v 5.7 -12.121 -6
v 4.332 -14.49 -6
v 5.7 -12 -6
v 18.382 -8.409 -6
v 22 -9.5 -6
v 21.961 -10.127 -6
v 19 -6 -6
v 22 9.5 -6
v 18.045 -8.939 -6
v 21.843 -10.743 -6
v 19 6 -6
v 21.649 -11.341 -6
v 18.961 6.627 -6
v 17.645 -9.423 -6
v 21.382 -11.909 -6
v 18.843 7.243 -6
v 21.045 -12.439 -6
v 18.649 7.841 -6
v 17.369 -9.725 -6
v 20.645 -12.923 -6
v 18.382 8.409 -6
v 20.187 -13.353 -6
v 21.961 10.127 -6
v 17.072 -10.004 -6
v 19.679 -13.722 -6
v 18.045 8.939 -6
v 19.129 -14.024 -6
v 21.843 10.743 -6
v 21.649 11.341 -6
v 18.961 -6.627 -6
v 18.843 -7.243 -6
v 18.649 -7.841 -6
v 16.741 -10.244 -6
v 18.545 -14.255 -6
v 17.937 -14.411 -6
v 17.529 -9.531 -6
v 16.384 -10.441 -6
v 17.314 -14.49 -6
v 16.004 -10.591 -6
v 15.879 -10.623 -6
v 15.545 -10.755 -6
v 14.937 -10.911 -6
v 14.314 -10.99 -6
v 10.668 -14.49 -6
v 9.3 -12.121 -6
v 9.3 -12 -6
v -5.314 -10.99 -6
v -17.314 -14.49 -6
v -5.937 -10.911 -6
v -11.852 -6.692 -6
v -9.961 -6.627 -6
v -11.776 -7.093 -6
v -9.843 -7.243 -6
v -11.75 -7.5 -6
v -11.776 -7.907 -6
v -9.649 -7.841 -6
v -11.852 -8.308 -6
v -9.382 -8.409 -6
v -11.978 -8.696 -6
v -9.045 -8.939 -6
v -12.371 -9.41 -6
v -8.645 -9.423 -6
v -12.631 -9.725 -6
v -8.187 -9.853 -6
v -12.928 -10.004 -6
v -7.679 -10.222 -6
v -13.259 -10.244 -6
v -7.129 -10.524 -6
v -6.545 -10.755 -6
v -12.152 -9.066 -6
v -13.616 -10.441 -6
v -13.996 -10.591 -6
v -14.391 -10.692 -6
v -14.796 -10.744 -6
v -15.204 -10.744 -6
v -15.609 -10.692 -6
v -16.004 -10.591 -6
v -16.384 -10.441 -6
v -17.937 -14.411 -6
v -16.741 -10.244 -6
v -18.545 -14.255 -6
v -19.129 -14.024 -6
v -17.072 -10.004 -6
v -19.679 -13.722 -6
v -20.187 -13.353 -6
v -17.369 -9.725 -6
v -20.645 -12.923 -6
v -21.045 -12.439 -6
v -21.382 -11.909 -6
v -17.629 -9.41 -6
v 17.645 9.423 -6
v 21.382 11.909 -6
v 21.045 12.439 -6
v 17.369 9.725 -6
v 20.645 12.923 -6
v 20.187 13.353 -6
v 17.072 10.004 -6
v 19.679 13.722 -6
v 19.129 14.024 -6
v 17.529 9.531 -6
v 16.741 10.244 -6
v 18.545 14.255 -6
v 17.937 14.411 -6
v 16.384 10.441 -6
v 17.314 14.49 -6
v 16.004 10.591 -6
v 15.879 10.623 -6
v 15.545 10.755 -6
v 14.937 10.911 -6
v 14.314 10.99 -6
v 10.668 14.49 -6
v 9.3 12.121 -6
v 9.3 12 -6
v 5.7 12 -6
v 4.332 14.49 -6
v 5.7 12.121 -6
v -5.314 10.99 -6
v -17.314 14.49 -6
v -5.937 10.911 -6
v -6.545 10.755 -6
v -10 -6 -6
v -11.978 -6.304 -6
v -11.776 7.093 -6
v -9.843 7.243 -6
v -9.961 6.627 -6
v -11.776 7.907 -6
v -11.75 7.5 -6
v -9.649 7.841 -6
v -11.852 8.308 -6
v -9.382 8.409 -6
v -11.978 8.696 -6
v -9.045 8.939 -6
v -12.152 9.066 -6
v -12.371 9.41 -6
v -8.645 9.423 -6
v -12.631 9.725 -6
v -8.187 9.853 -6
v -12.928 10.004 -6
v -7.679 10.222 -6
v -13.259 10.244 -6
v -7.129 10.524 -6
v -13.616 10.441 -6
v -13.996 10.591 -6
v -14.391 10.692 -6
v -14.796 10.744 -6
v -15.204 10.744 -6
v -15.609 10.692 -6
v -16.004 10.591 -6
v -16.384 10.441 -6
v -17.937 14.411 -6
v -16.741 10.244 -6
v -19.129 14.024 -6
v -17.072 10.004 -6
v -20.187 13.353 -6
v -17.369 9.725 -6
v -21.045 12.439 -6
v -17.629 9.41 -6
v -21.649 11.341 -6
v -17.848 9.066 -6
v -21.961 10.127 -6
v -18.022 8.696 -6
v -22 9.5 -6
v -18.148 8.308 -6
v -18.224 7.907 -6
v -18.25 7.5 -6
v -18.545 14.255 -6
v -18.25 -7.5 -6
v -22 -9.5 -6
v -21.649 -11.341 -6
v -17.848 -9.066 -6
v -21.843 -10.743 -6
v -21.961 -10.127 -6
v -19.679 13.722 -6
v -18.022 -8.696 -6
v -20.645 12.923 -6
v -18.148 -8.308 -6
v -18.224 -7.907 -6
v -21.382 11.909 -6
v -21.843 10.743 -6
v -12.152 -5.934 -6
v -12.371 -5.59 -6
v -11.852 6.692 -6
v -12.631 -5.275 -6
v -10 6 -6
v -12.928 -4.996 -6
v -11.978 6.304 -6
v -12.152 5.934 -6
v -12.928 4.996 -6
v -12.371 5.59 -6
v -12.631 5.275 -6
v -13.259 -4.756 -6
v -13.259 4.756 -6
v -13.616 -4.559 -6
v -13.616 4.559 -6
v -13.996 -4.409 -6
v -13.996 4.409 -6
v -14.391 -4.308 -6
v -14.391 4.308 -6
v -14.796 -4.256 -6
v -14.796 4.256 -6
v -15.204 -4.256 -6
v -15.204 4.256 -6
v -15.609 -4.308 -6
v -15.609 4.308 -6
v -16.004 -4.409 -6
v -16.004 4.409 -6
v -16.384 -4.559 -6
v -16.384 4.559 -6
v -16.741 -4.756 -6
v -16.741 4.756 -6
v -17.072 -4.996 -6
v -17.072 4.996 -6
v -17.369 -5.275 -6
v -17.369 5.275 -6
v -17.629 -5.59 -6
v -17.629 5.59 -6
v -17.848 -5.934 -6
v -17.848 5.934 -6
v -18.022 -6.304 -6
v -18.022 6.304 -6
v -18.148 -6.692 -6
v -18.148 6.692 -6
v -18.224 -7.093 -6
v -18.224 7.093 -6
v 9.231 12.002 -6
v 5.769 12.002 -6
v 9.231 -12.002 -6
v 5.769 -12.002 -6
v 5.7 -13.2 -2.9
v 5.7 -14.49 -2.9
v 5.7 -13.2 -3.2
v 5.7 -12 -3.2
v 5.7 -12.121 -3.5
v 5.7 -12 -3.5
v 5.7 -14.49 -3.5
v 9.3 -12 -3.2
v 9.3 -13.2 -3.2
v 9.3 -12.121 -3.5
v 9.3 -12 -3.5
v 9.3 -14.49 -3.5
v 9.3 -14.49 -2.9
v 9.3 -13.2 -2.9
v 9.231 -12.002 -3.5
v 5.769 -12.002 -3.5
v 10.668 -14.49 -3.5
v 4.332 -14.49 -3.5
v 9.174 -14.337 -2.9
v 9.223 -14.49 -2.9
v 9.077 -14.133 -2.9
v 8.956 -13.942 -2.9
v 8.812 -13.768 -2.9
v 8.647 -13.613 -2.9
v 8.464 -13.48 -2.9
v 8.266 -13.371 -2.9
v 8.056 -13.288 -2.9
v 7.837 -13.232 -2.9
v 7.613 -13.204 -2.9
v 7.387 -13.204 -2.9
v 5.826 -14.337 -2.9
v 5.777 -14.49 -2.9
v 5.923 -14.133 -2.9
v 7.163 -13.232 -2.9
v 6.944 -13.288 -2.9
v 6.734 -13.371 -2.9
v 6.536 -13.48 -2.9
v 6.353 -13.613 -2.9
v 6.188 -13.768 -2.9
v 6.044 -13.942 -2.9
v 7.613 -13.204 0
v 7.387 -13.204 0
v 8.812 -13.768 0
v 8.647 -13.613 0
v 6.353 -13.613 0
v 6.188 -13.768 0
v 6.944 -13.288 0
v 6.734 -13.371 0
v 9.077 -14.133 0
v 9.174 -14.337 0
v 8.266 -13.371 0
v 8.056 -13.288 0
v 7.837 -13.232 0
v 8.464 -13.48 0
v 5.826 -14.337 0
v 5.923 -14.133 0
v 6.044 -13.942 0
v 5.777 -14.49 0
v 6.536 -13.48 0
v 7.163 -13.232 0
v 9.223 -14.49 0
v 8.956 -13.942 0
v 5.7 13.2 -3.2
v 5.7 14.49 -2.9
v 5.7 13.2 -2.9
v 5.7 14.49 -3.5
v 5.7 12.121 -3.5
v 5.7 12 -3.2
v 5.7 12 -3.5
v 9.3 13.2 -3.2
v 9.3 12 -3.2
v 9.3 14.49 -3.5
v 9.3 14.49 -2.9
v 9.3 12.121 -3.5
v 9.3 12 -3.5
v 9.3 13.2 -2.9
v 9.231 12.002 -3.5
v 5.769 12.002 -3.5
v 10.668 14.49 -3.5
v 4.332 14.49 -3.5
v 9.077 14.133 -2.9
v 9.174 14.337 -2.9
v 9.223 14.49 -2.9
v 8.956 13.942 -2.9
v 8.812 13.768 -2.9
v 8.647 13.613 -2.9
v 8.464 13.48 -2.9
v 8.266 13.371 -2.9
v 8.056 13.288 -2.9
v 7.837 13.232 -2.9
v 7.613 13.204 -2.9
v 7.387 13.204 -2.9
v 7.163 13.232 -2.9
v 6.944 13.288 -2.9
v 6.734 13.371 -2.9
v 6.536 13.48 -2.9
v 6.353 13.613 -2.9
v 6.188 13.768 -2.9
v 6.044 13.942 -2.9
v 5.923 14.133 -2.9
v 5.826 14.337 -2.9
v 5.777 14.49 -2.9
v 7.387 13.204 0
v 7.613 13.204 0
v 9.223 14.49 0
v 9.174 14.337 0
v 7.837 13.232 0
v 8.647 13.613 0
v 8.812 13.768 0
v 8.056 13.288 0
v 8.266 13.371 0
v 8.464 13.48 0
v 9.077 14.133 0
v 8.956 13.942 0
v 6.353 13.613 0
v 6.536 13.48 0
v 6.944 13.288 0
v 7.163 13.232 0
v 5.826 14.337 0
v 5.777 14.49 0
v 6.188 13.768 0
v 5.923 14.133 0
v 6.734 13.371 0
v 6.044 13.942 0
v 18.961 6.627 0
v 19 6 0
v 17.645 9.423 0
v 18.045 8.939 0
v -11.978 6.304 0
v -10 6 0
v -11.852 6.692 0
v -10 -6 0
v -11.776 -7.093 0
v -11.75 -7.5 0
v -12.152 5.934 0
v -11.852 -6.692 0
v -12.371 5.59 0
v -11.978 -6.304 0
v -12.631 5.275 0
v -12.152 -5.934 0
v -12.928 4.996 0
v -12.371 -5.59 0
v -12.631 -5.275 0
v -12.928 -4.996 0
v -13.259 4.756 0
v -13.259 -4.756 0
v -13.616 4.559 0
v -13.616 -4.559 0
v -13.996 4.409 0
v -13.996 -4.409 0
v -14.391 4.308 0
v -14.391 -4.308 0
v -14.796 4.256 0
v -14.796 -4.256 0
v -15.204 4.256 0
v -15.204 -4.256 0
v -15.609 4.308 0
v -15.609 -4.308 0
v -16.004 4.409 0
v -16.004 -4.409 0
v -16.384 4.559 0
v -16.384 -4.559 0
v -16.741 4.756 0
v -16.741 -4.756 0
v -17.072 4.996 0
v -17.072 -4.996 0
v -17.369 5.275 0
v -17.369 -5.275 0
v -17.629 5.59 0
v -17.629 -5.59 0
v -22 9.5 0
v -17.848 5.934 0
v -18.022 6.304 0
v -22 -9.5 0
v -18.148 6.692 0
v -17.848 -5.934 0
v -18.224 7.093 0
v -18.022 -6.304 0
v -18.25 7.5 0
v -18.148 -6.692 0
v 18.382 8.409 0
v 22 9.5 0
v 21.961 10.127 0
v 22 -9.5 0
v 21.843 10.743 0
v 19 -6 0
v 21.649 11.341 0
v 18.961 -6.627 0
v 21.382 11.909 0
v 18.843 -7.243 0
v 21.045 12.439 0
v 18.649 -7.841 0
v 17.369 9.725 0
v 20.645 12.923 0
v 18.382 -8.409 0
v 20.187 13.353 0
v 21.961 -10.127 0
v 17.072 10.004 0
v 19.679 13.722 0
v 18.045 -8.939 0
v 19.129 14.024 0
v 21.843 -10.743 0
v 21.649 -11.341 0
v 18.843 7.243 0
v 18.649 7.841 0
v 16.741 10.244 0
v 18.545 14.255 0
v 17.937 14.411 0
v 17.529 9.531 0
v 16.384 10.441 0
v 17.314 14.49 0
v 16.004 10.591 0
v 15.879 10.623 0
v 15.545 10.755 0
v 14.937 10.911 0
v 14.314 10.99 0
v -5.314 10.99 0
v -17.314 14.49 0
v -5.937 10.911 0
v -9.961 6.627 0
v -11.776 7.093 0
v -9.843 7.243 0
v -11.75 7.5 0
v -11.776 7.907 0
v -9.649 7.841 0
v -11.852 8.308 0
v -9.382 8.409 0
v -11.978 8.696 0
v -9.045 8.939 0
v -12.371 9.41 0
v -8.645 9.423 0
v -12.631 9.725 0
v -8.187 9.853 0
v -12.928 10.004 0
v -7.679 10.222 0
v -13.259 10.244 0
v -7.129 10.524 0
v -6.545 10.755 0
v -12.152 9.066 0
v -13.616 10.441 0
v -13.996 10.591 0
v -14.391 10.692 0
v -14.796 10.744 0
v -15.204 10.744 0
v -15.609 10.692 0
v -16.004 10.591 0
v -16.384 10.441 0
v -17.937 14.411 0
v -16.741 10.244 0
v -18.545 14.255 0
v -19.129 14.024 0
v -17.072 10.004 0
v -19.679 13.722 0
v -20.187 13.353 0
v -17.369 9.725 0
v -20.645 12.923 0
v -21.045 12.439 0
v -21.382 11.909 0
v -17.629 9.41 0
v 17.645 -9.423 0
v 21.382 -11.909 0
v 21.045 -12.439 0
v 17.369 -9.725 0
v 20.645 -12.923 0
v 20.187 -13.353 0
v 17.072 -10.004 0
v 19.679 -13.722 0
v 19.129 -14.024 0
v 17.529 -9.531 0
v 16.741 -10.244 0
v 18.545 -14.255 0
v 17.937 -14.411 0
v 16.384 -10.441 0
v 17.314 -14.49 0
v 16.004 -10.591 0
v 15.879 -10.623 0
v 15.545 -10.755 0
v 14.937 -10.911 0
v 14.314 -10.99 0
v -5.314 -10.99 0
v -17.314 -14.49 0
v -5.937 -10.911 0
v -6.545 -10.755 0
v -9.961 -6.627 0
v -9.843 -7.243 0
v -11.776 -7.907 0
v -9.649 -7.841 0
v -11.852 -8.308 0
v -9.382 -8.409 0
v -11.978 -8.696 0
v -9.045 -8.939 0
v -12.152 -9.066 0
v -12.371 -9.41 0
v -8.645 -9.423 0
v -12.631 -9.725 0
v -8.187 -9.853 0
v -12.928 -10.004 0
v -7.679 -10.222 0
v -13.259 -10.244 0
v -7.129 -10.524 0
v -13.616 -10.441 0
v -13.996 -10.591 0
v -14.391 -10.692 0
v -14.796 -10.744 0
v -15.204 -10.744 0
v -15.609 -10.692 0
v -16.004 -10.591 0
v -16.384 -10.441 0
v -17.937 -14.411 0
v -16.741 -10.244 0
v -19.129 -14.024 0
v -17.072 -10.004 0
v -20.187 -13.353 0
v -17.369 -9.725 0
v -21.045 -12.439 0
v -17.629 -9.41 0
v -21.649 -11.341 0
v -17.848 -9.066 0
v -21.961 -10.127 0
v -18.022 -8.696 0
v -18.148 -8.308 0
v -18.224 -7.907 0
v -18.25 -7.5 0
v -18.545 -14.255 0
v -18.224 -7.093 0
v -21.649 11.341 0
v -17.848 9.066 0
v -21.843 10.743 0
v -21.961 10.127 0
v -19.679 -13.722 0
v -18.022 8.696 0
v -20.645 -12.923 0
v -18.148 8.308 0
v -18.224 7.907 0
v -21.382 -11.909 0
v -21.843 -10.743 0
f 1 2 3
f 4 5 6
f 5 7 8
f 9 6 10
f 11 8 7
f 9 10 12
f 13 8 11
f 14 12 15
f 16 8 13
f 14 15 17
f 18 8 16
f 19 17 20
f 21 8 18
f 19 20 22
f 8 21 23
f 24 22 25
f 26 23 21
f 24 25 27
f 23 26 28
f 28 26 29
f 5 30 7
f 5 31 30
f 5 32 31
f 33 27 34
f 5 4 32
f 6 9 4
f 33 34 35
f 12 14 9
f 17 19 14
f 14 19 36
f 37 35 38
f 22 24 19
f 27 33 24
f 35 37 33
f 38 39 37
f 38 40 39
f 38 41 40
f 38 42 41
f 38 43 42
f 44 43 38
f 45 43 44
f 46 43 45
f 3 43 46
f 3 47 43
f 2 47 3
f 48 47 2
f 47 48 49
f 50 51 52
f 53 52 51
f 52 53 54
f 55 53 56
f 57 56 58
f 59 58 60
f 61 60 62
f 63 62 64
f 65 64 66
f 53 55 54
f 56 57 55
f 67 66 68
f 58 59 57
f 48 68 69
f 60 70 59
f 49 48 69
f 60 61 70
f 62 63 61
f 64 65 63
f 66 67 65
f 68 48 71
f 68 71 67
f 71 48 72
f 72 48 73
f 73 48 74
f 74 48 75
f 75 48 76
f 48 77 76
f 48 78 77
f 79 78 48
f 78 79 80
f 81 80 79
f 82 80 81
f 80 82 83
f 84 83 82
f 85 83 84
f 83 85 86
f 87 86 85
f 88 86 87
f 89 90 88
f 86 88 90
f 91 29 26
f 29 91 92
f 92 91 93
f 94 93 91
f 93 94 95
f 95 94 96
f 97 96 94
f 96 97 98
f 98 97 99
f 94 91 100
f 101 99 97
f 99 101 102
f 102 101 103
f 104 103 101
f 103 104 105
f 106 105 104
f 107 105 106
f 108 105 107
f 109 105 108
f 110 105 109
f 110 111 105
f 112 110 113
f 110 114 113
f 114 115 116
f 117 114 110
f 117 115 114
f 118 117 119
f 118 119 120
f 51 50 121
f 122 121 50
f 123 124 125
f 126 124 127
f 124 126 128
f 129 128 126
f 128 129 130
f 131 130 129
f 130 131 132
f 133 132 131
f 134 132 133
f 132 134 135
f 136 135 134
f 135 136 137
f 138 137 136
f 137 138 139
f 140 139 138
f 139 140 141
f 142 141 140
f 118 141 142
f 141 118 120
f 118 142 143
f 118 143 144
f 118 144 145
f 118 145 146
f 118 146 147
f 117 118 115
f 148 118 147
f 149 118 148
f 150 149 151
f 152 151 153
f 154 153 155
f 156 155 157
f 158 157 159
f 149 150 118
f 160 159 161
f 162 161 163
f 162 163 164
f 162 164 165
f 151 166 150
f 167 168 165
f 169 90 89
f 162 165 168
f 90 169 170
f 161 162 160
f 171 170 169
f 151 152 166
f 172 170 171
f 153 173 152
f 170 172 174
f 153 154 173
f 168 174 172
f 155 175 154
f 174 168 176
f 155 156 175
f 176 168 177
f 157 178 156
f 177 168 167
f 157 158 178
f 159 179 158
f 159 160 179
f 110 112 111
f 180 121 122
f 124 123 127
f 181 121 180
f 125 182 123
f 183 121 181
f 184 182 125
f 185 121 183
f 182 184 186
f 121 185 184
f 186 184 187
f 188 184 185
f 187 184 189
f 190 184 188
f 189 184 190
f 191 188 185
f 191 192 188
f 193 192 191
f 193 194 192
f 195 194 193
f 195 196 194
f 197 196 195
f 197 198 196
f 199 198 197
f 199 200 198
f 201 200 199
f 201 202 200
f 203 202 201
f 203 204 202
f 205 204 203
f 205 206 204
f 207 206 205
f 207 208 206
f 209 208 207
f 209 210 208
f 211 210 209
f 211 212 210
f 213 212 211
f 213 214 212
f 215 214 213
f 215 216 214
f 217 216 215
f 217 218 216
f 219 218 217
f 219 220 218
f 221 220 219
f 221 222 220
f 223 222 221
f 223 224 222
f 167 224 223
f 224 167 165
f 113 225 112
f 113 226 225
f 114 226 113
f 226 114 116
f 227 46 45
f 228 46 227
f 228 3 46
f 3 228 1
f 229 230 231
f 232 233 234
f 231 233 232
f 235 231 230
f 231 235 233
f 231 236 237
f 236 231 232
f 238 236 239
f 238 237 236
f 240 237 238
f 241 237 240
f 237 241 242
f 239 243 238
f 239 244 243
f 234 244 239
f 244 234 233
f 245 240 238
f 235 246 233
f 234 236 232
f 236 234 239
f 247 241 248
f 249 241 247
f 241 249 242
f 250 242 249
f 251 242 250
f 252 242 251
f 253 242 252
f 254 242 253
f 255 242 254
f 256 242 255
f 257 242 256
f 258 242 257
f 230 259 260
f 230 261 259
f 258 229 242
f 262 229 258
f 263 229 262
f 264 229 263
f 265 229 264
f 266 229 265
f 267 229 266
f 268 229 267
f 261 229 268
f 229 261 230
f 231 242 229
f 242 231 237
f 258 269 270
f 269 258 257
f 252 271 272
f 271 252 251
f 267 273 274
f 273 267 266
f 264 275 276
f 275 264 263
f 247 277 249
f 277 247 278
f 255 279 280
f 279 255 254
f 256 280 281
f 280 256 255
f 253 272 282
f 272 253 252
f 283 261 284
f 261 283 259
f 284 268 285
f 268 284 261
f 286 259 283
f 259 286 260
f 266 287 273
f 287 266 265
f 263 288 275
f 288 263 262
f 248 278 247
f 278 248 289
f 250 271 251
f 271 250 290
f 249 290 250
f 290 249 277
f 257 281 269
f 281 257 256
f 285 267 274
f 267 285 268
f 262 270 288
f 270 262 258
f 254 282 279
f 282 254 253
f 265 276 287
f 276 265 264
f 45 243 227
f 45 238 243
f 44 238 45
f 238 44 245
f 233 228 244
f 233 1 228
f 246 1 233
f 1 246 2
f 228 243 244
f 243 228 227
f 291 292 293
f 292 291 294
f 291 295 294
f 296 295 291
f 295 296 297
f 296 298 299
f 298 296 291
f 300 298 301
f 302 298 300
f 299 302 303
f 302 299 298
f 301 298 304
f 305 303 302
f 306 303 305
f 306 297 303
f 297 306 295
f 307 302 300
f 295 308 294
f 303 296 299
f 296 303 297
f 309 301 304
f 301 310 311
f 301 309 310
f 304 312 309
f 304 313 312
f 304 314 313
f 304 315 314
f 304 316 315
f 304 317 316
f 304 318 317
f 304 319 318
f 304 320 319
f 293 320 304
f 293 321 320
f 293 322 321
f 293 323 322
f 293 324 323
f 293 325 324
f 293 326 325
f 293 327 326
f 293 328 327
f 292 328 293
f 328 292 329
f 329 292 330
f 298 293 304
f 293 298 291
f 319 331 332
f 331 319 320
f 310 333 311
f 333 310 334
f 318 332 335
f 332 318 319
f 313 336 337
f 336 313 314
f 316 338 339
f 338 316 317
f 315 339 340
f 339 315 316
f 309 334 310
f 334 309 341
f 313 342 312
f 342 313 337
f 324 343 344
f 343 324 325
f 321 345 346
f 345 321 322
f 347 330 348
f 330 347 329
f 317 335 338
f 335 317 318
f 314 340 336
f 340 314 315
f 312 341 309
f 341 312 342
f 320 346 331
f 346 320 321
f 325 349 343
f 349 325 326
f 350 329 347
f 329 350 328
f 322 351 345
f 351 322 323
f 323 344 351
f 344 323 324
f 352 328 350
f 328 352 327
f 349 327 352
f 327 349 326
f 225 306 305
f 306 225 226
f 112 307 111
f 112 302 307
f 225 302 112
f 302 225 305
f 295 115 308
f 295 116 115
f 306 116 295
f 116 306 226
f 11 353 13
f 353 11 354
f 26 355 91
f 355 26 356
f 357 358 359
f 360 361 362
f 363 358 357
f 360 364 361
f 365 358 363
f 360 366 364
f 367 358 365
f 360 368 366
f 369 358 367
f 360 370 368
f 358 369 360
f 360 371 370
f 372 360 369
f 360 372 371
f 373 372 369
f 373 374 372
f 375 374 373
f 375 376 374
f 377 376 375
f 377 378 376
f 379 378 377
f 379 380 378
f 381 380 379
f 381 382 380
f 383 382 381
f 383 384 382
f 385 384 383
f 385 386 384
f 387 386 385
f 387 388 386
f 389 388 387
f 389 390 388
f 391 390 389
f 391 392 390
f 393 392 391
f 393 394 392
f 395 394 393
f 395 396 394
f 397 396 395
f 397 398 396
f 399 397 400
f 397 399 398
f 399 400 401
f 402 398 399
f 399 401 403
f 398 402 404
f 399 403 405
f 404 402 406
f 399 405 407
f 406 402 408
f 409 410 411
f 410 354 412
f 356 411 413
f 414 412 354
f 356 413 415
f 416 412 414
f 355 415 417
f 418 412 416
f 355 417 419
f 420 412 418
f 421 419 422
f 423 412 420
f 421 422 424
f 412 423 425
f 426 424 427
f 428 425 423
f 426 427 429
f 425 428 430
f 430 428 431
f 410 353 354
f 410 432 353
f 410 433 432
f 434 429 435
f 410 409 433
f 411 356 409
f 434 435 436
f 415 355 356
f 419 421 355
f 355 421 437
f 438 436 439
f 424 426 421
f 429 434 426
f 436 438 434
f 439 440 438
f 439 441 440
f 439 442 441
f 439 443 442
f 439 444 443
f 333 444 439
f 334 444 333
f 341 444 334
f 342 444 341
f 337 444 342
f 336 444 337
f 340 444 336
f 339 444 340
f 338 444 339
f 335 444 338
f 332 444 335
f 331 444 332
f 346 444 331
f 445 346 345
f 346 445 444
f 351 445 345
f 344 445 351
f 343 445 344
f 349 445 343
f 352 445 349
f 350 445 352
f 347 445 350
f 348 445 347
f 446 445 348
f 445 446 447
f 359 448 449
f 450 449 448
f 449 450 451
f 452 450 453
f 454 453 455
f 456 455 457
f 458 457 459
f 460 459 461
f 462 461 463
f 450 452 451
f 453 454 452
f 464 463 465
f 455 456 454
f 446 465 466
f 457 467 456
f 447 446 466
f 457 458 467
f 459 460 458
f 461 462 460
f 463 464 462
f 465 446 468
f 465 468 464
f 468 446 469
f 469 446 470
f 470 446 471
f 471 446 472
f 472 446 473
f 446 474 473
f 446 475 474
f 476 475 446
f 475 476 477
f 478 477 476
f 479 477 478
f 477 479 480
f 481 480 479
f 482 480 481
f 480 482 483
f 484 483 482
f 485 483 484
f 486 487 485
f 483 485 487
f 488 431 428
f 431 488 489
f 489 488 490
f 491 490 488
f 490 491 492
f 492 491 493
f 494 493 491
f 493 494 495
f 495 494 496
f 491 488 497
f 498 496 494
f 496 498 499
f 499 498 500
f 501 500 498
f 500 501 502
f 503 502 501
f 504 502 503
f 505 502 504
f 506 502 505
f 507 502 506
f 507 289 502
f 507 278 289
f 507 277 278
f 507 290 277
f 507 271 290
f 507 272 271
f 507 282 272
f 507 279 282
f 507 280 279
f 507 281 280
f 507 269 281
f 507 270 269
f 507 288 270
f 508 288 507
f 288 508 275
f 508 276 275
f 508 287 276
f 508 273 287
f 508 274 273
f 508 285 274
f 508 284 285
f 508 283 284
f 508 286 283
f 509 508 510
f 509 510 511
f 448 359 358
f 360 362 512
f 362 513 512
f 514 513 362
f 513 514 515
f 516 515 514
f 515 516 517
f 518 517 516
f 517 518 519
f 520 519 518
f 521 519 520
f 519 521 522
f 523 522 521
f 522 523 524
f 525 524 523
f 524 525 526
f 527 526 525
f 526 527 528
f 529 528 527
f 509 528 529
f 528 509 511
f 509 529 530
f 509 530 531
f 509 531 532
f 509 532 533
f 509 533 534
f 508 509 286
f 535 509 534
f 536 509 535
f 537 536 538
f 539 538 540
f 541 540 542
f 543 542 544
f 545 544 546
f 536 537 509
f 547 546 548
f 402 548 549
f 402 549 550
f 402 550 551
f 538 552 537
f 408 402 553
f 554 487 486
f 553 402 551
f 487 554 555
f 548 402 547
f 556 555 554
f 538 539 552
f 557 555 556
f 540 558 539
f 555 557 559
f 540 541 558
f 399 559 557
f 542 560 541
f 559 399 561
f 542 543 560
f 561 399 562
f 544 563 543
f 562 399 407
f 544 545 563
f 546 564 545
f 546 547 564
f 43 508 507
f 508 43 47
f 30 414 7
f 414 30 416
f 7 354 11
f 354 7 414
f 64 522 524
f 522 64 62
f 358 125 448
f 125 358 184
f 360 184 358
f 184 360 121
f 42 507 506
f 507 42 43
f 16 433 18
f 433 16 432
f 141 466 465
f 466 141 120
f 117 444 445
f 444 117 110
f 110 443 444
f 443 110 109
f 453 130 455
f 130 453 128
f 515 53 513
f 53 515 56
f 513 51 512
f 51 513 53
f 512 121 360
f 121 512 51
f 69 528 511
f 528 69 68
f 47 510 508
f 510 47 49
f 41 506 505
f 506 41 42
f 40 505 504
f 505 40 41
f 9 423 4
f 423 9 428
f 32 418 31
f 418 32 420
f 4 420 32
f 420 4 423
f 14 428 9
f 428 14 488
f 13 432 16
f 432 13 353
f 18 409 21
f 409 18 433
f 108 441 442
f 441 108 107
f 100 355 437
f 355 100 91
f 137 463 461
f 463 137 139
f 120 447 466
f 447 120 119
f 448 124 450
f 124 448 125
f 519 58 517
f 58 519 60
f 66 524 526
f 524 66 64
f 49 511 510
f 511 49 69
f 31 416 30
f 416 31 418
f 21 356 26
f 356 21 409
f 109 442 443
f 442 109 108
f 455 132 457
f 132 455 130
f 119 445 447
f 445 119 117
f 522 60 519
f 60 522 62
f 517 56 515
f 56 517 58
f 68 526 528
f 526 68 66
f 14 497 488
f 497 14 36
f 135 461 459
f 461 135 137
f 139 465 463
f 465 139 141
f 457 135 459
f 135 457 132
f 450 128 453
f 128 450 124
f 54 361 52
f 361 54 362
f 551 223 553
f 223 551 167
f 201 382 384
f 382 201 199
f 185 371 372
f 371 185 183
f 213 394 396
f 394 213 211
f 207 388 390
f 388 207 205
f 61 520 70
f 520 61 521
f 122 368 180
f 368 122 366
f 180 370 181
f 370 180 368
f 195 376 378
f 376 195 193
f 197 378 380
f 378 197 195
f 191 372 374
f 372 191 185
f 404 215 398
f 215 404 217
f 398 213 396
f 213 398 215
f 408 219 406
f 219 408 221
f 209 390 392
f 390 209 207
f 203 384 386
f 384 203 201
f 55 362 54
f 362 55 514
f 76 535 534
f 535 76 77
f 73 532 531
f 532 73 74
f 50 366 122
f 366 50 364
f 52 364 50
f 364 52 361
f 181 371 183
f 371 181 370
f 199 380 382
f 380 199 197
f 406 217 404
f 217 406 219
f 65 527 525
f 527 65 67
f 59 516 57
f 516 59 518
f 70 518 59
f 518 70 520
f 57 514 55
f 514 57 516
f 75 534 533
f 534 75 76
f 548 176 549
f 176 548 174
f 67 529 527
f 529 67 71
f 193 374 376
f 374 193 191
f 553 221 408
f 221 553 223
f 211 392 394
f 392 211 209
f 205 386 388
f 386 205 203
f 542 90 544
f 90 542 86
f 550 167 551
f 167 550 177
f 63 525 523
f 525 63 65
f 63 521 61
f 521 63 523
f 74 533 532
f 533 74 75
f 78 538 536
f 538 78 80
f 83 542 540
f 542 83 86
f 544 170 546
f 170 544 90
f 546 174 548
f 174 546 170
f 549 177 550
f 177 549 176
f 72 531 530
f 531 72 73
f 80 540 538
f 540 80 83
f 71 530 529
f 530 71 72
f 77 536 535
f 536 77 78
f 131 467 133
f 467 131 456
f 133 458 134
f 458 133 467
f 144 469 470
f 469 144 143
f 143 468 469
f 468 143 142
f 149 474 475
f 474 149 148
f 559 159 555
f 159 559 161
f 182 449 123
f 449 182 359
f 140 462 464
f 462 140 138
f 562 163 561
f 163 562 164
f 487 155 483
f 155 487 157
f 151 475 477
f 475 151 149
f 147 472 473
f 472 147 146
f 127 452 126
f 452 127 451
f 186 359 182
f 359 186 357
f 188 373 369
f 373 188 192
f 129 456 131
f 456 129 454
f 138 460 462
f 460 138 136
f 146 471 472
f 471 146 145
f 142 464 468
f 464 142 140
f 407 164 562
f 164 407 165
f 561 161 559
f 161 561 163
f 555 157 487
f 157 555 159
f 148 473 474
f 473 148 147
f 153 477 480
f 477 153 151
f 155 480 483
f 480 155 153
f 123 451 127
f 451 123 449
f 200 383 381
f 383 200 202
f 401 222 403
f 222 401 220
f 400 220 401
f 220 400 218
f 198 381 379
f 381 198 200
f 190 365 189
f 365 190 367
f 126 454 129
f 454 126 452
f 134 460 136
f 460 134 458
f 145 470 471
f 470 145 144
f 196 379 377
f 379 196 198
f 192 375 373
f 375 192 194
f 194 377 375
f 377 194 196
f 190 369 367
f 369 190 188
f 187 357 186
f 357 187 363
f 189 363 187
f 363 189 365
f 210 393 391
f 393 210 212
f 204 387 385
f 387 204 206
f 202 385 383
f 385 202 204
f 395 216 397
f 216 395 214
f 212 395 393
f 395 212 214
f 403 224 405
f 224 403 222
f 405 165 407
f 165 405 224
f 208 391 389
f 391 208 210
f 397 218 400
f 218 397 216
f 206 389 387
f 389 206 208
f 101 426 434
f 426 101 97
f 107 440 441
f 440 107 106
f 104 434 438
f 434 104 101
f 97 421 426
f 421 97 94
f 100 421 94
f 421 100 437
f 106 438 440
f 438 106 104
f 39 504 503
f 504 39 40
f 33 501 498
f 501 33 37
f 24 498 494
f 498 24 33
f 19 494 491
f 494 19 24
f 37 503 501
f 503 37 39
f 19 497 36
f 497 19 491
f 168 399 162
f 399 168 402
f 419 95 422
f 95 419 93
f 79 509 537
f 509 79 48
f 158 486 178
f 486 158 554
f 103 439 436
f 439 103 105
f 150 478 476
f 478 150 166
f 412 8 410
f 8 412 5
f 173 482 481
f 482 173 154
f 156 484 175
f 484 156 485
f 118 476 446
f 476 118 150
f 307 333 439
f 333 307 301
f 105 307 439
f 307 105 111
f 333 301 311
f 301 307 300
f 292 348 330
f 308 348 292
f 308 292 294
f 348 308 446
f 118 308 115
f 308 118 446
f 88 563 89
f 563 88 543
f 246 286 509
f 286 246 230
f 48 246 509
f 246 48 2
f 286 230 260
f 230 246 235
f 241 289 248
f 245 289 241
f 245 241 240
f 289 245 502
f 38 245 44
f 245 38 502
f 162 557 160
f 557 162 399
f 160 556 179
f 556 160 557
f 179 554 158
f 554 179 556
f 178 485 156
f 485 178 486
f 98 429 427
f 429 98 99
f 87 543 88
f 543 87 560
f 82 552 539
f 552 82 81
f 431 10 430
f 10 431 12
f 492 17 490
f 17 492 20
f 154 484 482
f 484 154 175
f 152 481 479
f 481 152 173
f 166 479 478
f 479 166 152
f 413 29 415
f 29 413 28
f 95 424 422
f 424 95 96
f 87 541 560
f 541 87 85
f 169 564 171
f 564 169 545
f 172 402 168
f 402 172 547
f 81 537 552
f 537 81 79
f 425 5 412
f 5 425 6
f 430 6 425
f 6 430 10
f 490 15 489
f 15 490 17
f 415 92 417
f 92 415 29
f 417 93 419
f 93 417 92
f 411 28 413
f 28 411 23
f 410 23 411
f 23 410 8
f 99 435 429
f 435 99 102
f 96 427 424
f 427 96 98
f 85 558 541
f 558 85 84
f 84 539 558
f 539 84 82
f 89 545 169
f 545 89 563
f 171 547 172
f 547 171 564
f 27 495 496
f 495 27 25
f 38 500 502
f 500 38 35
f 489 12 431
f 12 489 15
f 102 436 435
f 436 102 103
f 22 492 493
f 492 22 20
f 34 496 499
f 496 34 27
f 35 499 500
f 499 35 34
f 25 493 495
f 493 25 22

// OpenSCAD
$fn = 50;


difference() {
	union() {
		*color(alpha = 1.0000000000, c = "gray") {
			translate(v = [0, 14, -6]) {
				linear_extrude(height = 2) {
					text(font = "Arial:style=Bold", halign = "center", size = 4.5000000000, text = "COMMENT description oobb_plate_shape_positive_type_6_depth_0_0_-6_pos_spacer_long_extra_6_thickness_3_width_2_height_0_0_-6_pos_plate", valign = "center");
				}
			}
		}
		translate(v = [0, 0, -6]) {
			hull() {
				translate(v = [-17.0000000000, 9.5000000000, 0]) {
					cylinder(h = 6, r = 5);
				}
				translate(v = [17.0000000000, 9.5000000000, 0]) {
					cylinder(h = 6, r = 5);
				}
				translate(v = [-17.0000000000, -9.5000000000, 0]) {
					cylinder(h = 6, r = 5);
				}
				translate(v = [17.0000000000, -9.5000000000, 0]) {
					cylinder(h = 6, r = 5);
				}
			}
		}
		*color(alpha = 1.0000000000, c = "gray") {
			translate(v = [0, 14, -6]) {
				linear_extrude(height = 2) {
					text(font = "Arial:style=Bold", halign = "center", size = 4.5000000000, text = "COMMENT description oobb_holes_shape_p_type_0_0_-6_pos_spacer_long_extra_6_thickness_3_width_2_height_0_0_-6_pos_plate_'left'_'right'_'top'_hole_sides_'left'_'right'_'top'_holes_true_both_holes", valign = "center");
				}
			}
		}
		*color(alpha = 1.0000000000, c = "gray") {
			translate(v = [0, 14, -3]) {
				rotate(a = [0, 0, 180]) {
					linear_extrude(height = 2) {
						text(font = "Arial:style=Bold", halign = "center", size = 4.5000000000, text = "COMMENT description oobb_wire_spacer_long_shape_0_0_-3_pos_spacer_long_extra_6_thickness_3_width_2_height_0_0_-6_pos_plate_0_0_180_rot", valign = "center");
					}
				}
			}
		}
	}
	union() {
		translate(v = [7.5000000000, -15, -6]) {
			rotate(a = [0, 0, 0]) {
				difference() {
					union() {
						#translate(v = [-1.8000000000, -3.0000000000, -0.3000000000]) {
							cube(size = [3.6000000000, 6.0000000000, 0.3000000000]);
						}
						#translate(v = [-1.8000000000, -1.8000000000, -0.6000000000]) {
							cube(size = [3.6000000000, 3.6000000000, 0.3000000000]);
						}
						#translate(v = [-1.8000000000, -3.0000000000, 2.5000000000]) {
							cube(size = [3.6000000000, 6.0000000000, 0.3000000000]);
						}
						#translate(v = [-1.8000000000, -1.8000000000, 2.8000000000]) {
							cube(size = [3.6000000000, 3.6000000000, 0.3000000000]);
						}
						#translate(v = [0, 0, -50.0000000000]) {
							cylinder(h = 100, r = 1.8000000000);
						}
						#linear_extrude(height = 2.5000000000) {
							polygon(points = [[3.4620000000, 0.0000000000], [1.7310000000, 2.9981799479], [-1.7310000000, 2.9981799479], [-3.4620000000, 0.0000000000], [-1.7310000000, -2.9981799479], [1.7310000000, -2.9981799479]]);
						}
						#translate(v = [-1.8000000000, -3.0000000000, -0.3000000000]) {
							cube(size = [3.6000000000, 6.0000000000, 0.3000000000]);
						}
						#translate(v = [-1.8000000000, -1.8000000000, -0.6000000000]) {
							cube(size = [3.6000000000, 3.6000000000, 0.3000000000]);
						}
						#translate(v = [-1.8000000000, -3.0000000000, 2.5000000000]) {
							cube(size = [3.6000000000, 6.0000000000, 0.3000000000]);
						}
						#translate(v = [-1.8000000000, -1.8000000000, 2.8000000000]) {
							cube(size = [3.6000000000, 3.6000000000, 0.3000000000]);
						}
						#translate(v = [0, 0, -50.0000000000]) {
							cylinder(h = 100, r = 1.8000000000);
						}
						#translate(v = [-1.8000000000, -3.0000000000, -0.3000000000]) {
							cube(size = [3.6000000000, 6.0000000000, 0.3000000000]);
						}
						#translate(v = [-1.8000000000, -1.8000000000, -0.6000000000]) {
							cube(size = [3.6000000000, 3.6000000000, 0.3000000000]);
						}
						#translate(v = [-1.8000000000, -3.0000000000, 2.5000000000]) {
							cube(size = [3.6000000000, 6.0000000000, 0.3000000000]);
						}
						#translate(v = [-1.8000000000, -1.8000000000, 2.8000000000]) {
							cube(size = [3.6000000000, 3.6000000000, 0.3000000000]);
						}
						#translate(v = [0, 0, -50.0000000000]) {
							cylinder(h = 100, r = 1.8000000000);
						}
					}
					union();
				}
			}
		}
		translate(v = [7.5000000000, 15, -6]) {
			rotate(a = [0, 0, 0]) {
				difference() {
					union() {
						#translate(v = [-1.8000000000, -3.0000000000, -0.3000000000]) {
							cube(size = [3.6000000000, 6.0000000000, 0.3000000000]);
						}
						#translate(v = [-1.8000000000, -1.8000000000, -0.6000000000]) {
							cube(size = [3.6000000000, 3.6000000000, 0.3000000000]);
						}
						#translate(v = [-1.8000000000, -3.0000000000, 2.5000000000]) {
							cube(size = [3.6000000000, 6.0000000000, 0.3000000000]);
						}
						#translate(v = [-1.8000000000, -1.8000000000, 2.8000000000]) {
							cube(size = [3.6000000000, 3.6000000000, 0.3000000000]);
						}
						#translate(v = [0, 0, -50.0000000000]) {
							cylinder(h = 100, r = 1.8000000000);
						}
						#linear_extrude(height = 2.5000000000) {
							polygon(points = [[3.4620000000, 0.0000000000], [1.7310000000, 2.9981799479], [-1.7310000000, 2.9981799479], [-3.4620000000, 0.0000000000], [-1.7310000000, -2.9981799479], [1.7310000000, -2.9981799479]]);
						}
						#translate(v = [-1.8000000000, -3.0000000000, -0.3000000000]) {
							cube(size = [3.6000000000, 6.0000000000, 0.3000000000]);
						}
						#translate(v = [-1.8000000000, -1.8000000000, -0.6000000000]) {
							cube(size = [3.6000000000, 3.6000000000, 0.3000000000]);
						}
						#translate(v = [-1.8000000000, -3.0000000000, 2.5000000000]) {
							cube(size = [3.6000000000, 6.0000000000, 0.3000000000]);
						}
						#translate(v = [-1.8000000000, -1.8000000000, 2.8000000000]) {
							cube(size = [3.6000000000, 3.6000000000, 0.3000000000]);
						}
						#translate(v = [0, 0, -50.0000000000]) {
							cylinder(h = 100, r = 1.8000000000);
						}
						#translate(v = [-1.8000000000, -3.0000000000, -0.3000000000]) {
							cube(size = [3.6000000000, 6.0000000000, 0.3000000000]);
						}
						#translate(v = [-1.8000000000, -1.8000000000, -0.6000000000]) {
							cube(size = [3.6000000000, 3.6000000000, 0.3000000000]);
						}
						#translate(v = [-1.8000000000, -3.0000000000, 2.5000000000]) {
							cube(size = [3.6000000000, 6.0000000000, 0.3000000000]);
						}
						#translate(v = [-1.8000000000, -1.8000000000, 2.8000000000]) {
							cube(size = [3.6000000000, 3.6000000000, 0.3000000000]);
						}
						#translate(v = [0, 0, -50.0000000000]) {
							cylinder(h = 100, r = 1.8000000000);
						}
					}
					union();
				}
			}
		}
		translate(v = [0, 0, -3]) {
			rotate(a = [0, 0, 180]) {
				difference() {
					union() {
						translate(v = [-4.5000000000, 0, -3]) {
							hull() {
								translate(v = [-9.5000000000, 6.0000000000, 0]) {
									cylinder(h = 6, r = 5);
								}
								translate(v = [9.5000000000, 6.0000000000, 0]) {
									cylinder(h = 6, r = 5);
								}
								translate(v = [-9.5000000000, -6.0000000000, 0]) {
									cylinder(h = 6, r = 5);
								}
								translate(v = [9.5000000000, -6.0000000000, 0]) {
									cylinder(h = 6, r = 5);
								}
							}
						}
					}
					union();
				}
			}
		}
		translate(v = [-15.0000000000, -7.5000000000, -50.0000000000]) {
			cylinder(h = 100, r = 3.2500000000);
		}
		translate(v = [-15.0000000000, 7.5000000000, -50.0000000000]) {
			cylinder(h = 100, r = 3.2500000000);
		}
		translate(v = [-15.0000000000, 7.5000000000, -50.0000000000]) {
			cylinder(h = 100, r = 3.2500000000);
		}
		translate(v = [0.0000000000, 7.5000000000, -50.0000000000]) {
			cylinder(h = 100, r = 3.2500000000);
		}
		translate(v = [15.0000000000, 7.5000000000, -50.0000000000]) {
			cylinder(h = 100, r = 3.2500000000);
		}
		translate(v = [-15.0000000000, -7.5000000000, -50.0000000000]) {
			cylinder(h = 100, r = 3.2500000000);
		}
		translate(v = [0.0000000000, -7.5000000000, -50.0000000000]) {
			cylinder(h = 100, r = 3.2500000000);
		}
		translate(v = [15.0000000000, -7.5000000000, -50.0000000000]) {
			cylinder(h = 100, r = 3.2500000000);
		}
		*color(alpha = 1.0000000000, c = "gray") {
			translate(v = [7.5000000000, -1, -6]) {
				linear_extrude(height = 2) {
					text(font = "Arial:style=Bold", halign = "center", size = 4.5000000000, text = "COMMENT description oobb_nut_shape_negative_type_m3_radius_name_7.5_-15_-6_pos_6_thickness_3_width_2_height_0_0_-6_pos_plate_bottom_zz_true_overhang_0_0_0_rot_false_nut_true_hole", valign = "center");
				}
			}
		}
		*color(alpha = 1.0000000000, c = "gray") {
			translate(v = [7.5000000000, 29, -6]) {
				linear_extrude(height = 2) {
					text(font = "Arial:style=Bold", halign = "center", size = 4.5000000000, text = "COMMENT description oobb_nut_shape_negative_type_m3_radius_name_7.5_15_-6_pos_6_thickness_3_width_2_height_0_0_-6_pos_plate_bottom_zz_true_overhang_0_0_0_rot_false_nut_true_hole", valign = "center");
				}
			}
		}
	}
}
